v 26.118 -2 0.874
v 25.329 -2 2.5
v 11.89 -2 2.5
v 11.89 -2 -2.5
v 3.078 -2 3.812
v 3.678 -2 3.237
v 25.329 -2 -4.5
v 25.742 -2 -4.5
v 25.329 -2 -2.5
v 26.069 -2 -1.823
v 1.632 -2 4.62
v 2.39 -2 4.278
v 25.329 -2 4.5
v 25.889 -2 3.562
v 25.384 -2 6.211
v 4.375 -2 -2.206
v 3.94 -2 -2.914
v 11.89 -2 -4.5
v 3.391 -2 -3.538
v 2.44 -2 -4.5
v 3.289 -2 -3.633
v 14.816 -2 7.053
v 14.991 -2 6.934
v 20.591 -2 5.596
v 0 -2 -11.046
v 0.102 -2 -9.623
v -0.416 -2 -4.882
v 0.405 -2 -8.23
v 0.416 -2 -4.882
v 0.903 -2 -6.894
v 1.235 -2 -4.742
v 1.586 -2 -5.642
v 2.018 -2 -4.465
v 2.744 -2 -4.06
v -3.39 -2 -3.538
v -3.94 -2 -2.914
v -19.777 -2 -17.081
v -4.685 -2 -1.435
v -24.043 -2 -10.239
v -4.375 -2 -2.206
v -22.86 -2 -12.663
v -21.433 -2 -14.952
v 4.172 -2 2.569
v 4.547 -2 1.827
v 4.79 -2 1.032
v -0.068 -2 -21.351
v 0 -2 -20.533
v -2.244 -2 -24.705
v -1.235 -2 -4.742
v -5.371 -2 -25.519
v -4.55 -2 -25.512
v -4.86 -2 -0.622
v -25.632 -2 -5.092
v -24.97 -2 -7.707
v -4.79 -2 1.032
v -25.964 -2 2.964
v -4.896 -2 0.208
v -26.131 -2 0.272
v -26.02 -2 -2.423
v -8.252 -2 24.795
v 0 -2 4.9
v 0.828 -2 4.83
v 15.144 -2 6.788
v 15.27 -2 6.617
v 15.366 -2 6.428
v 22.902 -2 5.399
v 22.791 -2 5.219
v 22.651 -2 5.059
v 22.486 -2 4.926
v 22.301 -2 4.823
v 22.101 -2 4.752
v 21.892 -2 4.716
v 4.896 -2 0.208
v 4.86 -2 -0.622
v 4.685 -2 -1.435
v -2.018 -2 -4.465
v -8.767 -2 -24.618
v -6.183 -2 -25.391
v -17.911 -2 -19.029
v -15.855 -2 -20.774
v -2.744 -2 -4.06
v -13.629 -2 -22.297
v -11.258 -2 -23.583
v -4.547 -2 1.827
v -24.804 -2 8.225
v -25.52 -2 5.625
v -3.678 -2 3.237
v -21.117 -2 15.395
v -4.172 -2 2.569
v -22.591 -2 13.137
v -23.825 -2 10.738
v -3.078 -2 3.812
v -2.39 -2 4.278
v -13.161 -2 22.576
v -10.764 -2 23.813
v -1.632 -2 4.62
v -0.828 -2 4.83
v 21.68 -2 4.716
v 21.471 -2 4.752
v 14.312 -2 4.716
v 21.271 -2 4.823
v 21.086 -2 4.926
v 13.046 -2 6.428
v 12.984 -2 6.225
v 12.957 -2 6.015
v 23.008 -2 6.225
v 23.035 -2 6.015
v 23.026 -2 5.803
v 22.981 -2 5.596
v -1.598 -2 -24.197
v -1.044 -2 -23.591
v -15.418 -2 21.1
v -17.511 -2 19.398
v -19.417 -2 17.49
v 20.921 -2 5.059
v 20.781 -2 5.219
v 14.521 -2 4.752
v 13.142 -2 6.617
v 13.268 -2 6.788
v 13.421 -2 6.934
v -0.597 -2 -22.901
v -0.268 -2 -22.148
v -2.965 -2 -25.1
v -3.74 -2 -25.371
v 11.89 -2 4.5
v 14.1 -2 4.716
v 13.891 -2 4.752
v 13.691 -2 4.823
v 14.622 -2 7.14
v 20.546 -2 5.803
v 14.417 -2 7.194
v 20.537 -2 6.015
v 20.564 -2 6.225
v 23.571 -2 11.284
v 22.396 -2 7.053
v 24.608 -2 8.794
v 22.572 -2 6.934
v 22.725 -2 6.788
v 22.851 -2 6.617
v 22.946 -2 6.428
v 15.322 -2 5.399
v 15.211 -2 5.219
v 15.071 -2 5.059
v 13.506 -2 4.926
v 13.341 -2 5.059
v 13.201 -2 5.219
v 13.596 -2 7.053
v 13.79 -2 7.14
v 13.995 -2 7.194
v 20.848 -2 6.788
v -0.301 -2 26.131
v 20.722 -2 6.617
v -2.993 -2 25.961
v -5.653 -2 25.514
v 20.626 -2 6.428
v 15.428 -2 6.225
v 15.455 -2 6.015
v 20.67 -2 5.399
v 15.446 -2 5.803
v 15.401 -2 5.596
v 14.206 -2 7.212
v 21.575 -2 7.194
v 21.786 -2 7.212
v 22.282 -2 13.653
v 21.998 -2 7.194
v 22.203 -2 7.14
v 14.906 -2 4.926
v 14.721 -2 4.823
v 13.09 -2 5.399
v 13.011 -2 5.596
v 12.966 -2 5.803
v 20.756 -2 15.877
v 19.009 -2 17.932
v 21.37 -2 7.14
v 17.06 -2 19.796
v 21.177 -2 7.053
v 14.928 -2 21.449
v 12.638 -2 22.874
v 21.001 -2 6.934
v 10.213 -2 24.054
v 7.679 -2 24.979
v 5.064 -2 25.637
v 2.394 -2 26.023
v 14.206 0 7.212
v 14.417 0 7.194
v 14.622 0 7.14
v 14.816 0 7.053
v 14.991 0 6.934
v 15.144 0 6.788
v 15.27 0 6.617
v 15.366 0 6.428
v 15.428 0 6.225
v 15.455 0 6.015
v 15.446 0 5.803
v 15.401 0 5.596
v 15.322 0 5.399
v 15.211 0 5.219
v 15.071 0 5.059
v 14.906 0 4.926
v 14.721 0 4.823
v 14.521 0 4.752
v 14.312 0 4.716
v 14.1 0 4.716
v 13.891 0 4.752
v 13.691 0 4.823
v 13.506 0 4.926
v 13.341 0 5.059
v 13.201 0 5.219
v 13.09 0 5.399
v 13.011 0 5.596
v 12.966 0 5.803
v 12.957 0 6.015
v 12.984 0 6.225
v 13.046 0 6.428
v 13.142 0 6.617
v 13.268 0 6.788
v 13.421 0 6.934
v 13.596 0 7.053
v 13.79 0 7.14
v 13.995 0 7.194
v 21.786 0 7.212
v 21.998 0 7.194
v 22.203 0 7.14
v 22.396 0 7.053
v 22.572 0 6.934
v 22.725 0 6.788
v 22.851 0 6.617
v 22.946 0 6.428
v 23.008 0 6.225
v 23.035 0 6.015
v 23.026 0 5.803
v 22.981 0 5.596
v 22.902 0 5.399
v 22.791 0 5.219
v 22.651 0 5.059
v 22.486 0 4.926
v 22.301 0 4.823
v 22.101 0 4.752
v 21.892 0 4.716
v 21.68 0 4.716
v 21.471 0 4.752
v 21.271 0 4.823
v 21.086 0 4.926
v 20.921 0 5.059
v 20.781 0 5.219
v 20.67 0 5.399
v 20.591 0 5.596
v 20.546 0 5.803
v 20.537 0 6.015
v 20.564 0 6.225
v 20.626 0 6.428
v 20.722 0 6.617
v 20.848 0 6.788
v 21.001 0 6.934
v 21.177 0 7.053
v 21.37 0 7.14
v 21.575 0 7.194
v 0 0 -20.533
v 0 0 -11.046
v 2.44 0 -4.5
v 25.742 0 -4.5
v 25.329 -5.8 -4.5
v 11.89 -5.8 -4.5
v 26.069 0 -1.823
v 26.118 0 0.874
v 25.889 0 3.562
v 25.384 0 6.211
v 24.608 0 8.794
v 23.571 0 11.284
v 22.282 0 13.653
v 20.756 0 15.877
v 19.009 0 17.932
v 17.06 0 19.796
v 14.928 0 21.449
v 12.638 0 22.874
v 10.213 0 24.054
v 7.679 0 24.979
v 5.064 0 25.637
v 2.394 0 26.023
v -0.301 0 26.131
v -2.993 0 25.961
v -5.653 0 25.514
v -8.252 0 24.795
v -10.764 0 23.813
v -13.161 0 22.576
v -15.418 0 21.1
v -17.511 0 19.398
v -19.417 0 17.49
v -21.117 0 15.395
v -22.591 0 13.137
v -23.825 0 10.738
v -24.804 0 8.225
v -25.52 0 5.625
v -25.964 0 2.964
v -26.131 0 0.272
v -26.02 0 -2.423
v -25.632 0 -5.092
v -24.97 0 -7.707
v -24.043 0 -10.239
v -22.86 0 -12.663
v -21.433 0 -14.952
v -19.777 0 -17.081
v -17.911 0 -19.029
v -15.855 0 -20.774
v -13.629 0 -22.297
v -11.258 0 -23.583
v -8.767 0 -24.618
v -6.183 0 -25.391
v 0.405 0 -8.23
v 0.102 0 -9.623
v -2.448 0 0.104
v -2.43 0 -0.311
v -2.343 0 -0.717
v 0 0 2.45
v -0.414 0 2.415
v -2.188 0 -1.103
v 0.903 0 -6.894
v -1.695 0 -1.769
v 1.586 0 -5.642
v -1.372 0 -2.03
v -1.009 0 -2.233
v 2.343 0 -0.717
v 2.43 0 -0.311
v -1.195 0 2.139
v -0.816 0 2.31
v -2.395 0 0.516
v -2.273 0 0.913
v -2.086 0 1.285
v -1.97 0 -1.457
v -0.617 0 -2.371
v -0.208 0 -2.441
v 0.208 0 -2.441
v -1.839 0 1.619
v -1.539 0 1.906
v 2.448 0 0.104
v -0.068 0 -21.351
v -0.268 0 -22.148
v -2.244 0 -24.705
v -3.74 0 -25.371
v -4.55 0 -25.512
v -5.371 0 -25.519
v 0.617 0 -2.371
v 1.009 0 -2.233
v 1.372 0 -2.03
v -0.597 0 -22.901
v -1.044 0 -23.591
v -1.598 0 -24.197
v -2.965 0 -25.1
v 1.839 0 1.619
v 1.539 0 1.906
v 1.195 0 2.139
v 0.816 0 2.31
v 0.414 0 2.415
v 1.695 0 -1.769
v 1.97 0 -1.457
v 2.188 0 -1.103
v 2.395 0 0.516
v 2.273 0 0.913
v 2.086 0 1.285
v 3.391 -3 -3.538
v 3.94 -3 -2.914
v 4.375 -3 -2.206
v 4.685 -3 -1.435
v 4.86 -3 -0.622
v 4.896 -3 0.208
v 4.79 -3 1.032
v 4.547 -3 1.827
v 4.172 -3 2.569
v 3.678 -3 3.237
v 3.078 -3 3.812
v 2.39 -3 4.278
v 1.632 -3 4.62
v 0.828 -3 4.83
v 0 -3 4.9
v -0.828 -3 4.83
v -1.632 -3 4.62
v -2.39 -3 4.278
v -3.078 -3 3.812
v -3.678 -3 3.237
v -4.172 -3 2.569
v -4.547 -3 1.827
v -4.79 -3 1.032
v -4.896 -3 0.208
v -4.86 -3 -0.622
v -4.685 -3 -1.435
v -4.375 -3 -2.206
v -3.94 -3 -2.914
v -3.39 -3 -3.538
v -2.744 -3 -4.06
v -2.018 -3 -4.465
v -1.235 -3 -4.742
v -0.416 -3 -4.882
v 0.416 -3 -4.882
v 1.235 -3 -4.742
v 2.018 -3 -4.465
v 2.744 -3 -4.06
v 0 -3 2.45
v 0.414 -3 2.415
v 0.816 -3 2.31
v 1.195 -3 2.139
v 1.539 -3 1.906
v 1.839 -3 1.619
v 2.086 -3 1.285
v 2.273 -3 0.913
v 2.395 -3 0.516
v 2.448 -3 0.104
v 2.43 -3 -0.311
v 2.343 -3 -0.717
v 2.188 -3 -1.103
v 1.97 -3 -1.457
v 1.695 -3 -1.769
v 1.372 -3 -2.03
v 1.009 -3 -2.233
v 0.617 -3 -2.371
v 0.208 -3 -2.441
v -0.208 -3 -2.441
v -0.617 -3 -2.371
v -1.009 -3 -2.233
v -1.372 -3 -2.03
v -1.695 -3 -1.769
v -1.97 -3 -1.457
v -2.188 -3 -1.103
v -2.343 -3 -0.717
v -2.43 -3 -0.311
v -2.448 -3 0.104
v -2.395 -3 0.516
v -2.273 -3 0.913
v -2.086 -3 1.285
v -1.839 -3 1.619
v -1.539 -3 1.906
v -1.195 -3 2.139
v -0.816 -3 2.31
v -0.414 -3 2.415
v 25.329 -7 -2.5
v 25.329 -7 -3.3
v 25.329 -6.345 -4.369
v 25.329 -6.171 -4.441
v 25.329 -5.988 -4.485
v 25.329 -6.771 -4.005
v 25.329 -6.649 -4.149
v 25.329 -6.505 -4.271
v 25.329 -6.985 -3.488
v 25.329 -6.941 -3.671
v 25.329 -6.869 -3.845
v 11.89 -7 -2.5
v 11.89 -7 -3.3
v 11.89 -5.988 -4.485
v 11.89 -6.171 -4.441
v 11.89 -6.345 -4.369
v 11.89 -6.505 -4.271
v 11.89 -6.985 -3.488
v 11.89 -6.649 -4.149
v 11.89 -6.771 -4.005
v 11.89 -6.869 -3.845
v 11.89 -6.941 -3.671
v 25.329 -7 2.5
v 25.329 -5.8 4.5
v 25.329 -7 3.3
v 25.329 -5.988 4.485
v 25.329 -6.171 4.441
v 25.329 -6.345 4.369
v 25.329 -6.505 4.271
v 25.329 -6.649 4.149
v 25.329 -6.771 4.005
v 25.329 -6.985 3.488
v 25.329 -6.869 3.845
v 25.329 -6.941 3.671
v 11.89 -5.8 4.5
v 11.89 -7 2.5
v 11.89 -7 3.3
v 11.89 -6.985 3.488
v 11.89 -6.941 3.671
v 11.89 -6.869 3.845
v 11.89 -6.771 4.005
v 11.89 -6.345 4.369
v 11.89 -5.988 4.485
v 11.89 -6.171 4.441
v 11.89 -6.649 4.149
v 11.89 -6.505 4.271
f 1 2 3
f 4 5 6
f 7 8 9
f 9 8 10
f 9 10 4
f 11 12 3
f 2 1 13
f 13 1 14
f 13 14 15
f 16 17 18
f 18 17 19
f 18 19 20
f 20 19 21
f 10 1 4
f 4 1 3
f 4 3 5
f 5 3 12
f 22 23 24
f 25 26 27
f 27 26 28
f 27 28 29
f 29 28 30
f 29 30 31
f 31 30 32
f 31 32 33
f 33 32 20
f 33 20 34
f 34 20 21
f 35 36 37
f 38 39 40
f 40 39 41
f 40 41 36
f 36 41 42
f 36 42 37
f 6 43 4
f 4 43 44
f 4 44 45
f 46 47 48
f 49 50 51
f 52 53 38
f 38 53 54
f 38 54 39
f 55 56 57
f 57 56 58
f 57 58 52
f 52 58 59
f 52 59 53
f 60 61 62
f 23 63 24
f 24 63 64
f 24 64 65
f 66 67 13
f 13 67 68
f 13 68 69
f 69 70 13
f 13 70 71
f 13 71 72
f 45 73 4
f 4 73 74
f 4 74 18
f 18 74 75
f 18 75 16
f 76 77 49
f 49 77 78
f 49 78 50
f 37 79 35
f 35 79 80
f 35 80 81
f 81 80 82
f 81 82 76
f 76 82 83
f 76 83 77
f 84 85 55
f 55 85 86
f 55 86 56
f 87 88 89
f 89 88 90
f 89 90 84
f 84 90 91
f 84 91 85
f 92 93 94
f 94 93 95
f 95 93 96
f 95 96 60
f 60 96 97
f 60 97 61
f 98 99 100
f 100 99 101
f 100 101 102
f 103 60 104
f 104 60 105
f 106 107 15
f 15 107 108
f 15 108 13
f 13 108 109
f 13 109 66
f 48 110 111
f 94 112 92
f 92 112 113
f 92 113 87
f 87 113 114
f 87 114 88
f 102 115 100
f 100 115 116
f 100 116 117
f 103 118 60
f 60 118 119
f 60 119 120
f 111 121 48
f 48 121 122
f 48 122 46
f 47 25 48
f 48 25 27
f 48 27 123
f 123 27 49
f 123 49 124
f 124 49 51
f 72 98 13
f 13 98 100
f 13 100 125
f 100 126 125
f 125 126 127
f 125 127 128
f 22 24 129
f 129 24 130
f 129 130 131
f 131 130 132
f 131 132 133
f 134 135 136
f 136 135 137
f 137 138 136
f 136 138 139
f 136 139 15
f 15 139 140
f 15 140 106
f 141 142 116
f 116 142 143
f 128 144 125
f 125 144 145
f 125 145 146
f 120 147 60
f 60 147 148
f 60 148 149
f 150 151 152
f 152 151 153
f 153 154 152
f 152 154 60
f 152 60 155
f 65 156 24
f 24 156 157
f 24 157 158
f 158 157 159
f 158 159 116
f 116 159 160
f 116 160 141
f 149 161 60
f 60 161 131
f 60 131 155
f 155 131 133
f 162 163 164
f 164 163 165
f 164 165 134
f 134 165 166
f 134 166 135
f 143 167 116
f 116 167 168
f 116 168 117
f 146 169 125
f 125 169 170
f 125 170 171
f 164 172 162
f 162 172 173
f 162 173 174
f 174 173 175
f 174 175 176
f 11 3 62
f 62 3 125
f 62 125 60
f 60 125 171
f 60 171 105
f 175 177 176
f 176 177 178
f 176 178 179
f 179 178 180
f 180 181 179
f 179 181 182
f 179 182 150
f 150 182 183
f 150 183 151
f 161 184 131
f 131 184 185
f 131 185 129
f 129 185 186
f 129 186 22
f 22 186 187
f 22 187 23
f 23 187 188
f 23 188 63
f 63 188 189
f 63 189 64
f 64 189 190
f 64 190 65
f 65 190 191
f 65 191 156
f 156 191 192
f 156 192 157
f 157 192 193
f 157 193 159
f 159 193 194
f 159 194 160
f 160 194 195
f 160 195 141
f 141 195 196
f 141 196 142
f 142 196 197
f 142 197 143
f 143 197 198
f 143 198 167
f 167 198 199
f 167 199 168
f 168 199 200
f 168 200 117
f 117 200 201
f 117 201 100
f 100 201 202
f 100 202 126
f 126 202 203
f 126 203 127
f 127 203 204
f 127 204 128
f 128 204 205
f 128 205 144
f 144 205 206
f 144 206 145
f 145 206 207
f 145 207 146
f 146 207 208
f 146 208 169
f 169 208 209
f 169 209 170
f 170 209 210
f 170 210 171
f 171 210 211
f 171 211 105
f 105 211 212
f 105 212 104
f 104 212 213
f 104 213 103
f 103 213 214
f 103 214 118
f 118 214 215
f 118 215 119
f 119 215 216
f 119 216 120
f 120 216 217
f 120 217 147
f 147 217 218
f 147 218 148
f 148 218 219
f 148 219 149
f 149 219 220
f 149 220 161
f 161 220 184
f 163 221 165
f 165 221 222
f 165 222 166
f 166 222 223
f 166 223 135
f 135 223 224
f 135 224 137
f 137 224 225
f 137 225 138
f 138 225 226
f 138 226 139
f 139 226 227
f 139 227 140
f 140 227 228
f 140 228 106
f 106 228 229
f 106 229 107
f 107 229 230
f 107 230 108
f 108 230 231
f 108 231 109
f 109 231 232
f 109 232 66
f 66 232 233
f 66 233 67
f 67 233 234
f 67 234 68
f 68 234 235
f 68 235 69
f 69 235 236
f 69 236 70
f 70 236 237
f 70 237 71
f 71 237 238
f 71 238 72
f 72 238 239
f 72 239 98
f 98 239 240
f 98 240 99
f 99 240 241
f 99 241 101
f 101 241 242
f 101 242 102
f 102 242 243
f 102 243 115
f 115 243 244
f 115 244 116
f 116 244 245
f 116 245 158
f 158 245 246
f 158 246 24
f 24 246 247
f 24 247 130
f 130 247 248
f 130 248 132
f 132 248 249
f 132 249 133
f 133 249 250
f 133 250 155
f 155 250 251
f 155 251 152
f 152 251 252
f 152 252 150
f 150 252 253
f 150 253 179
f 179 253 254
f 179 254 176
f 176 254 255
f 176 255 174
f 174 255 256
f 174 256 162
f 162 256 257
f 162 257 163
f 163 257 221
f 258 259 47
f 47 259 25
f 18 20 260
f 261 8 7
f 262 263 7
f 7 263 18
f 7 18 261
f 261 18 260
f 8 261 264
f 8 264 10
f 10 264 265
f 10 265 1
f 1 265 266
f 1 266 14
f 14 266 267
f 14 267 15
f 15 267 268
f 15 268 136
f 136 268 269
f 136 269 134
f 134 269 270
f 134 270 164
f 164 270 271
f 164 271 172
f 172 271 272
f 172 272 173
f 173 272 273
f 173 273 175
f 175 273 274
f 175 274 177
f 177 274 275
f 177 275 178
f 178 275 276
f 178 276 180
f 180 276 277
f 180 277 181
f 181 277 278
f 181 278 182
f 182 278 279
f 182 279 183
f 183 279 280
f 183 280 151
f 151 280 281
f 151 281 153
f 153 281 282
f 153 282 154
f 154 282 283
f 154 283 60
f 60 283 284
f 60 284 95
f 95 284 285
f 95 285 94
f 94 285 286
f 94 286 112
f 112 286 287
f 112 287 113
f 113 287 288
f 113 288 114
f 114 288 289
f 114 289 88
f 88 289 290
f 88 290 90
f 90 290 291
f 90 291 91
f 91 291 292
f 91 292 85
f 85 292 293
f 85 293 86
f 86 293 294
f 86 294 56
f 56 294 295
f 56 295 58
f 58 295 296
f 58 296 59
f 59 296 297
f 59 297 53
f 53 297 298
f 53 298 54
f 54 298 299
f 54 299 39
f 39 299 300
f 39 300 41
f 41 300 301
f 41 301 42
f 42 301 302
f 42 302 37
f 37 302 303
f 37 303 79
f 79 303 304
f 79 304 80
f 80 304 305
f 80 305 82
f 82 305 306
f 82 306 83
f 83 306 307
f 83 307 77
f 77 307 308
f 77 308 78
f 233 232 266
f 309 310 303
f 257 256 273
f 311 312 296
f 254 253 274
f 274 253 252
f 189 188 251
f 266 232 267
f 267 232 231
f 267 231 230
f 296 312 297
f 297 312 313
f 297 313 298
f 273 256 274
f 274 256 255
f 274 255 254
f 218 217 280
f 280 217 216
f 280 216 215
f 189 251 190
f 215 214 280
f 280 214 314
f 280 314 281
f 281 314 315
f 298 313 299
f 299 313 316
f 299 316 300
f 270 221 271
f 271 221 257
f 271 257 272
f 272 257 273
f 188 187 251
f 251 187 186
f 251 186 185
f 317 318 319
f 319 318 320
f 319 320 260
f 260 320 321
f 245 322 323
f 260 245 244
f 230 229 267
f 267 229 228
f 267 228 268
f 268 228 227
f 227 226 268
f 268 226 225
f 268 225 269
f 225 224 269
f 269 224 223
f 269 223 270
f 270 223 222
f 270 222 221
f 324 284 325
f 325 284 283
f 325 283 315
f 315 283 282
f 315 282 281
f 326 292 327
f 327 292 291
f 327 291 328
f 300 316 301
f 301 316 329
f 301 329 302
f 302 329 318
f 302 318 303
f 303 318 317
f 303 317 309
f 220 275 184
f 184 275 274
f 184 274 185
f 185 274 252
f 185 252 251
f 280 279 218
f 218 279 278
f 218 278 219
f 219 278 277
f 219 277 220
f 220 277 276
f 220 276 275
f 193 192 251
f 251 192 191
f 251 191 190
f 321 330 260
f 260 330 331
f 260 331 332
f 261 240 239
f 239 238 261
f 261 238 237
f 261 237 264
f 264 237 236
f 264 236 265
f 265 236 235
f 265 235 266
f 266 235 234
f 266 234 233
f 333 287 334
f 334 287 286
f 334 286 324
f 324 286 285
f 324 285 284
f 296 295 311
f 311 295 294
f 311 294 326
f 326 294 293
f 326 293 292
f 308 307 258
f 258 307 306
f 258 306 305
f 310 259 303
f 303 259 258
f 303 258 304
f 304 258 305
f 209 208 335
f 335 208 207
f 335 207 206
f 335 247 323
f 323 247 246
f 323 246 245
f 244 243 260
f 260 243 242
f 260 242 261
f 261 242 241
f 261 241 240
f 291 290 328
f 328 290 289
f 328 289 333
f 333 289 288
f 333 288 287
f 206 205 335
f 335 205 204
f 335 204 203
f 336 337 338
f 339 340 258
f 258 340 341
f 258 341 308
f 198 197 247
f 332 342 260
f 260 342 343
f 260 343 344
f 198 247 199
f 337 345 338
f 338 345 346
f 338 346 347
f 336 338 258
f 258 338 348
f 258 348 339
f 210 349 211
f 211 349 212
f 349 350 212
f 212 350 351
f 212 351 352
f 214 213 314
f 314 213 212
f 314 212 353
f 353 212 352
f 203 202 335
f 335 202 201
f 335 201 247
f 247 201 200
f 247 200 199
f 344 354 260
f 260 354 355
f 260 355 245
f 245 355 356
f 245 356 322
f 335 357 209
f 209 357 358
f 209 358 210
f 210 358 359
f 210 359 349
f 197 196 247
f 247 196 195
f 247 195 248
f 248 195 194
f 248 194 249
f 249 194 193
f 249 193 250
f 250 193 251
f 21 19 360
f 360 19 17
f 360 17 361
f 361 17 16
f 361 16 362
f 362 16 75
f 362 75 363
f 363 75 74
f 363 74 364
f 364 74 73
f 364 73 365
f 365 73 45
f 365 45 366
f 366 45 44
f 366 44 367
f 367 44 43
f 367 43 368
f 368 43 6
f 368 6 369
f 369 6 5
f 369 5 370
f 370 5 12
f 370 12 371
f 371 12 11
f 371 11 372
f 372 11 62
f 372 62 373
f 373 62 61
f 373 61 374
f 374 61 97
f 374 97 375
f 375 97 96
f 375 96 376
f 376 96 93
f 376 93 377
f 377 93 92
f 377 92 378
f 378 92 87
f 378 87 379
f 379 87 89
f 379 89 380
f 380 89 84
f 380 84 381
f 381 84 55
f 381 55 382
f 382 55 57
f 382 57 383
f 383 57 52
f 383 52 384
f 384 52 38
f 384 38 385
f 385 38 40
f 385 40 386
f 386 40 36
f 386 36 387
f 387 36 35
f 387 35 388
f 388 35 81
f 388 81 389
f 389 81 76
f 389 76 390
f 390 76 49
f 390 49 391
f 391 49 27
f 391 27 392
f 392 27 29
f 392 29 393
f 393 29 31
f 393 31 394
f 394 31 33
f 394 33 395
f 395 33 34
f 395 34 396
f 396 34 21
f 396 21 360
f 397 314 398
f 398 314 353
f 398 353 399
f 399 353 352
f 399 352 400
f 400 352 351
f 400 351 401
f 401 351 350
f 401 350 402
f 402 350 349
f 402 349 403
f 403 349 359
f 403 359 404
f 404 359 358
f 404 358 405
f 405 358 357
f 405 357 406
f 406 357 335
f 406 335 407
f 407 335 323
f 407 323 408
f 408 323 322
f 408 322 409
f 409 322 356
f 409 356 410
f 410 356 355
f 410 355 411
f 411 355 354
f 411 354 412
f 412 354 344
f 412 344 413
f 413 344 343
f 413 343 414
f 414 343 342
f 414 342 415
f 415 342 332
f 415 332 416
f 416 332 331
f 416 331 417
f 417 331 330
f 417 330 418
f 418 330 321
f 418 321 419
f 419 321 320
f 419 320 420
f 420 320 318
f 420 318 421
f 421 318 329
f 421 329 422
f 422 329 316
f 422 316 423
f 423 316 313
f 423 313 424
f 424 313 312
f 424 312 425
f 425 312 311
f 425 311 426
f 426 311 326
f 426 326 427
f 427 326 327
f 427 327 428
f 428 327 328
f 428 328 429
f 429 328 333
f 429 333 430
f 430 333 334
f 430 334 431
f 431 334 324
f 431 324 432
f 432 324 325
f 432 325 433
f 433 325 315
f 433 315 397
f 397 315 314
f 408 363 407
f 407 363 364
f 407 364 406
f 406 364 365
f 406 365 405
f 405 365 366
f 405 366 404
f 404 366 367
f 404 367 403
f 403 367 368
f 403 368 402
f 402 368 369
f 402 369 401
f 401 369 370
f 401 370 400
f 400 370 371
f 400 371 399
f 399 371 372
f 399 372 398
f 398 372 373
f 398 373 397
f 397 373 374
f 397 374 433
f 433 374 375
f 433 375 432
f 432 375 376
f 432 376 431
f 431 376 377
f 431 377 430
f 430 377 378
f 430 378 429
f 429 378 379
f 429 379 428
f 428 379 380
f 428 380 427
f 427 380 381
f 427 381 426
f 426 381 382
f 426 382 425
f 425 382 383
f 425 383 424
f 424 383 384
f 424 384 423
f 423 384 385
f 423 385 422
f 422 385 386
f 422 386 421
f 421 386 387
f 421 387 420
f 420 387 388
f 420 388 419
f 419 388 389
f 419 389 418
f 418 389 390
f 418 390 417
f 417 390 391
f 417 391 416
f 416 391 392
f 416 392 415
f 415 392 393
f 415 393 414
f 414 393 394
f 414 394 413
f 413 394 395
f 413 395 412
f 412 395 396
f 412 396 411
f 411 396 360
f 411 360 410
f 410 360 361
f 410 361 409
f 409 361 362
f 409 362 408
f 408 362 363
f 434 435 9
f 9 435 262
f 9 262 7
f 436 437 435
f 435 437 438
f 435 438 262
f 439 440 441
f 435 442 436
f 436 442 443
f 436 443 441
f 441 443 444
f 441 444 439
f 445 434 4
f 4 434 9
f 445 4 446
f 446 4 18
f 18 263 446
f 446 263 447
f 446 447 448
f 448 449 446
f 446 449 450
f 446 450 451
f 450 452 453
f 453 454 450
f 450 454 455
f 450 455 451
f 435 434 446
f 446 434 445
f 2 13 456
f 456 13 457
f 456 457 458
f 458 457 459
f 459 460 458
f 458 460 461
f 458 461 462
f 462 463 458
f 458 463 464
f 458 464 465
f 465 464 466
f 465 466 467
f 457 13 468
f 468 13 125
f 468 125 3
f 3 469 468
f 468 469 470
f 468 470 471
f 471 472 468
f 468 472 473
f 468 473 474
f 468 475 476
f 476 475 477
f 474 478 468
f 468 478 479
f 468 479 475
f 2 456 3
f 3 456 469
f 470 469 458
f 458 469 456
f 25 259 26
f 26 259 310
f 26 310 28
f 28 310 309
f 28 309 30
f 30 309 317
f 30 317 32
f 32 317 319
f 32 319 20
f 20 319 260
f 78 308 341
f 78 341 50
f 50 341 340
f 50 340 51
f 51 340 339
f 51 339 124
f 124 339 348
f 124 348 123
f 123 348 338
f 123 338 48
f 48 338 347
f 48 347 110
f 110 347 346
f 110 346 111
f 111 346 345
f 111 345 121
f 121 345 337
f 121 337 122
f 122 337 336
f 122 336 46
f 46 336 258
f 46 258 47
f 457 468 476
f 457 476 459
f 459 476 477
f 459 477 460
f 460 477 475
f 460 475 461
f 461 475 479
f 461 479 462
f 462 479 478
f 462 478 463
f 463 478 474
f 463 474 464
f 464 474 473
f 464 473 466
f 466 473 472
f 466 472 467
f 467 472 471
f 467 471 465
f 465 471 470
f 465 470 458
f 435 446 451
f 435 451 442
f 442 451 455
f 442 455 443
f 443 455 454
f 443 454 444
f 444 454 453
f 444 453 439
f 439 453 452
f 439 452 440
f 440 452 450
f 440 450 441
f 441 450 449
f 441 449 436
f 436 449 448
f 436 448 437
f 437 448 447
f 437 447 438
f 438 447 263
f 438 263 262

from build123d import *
from build123d.topology import SkipClean

# Parameters (mm, degrees)
SKETCH1_R                 = 1.25
SKETCH1_R_2               = 2.45
BOSS_EXTRUDE1_DEPTH       = 2
BOSS_EXTRUDE2_START       = -3
BOSS_EXTRUDE2_OUTLINE_R   = 4.9
BOSS_EXTRUDE2_OUTLINE_R_2 = 2.45
BOSS_EXTRUDE2_DEPTH       = 1
SKETCH1_5_W               = 13.43962311
SKETCH1_5_H               = 2
BOSS_EXTRUDE3_DEPTH       = 7
FILLET1_R                 = 10
FILLET2_R                 = 5
FILLET3_R                 = 1.2
FILLET4_R                 = 1.2


# Read off the part's stored shape, not the designer's step: Boss-Extrude2
with BuildPart() as part:
    # Sketch1 → Boss-Extrude1 (new body)
    with BuildSketch(Plane(origin=(0, 0, 0), x_dir=(1, 0, 0), z_dir=(0, 1, 0))):
        with BuildLine():
            ThreePointArc((1.939071943, 4.5), (0.989949494, 4.79895822), (0, 4.9))
            Line((0, 4.9), (0, 26.132651094))
            ThreePointArc((0, 26.132651094), (-16.812473395, -20.006403764), (25.742289199, 4.5))
            Line((25.742289199, 4.5), (1.939071943, 4.5))
        make_face()
        with Locations(Location((14.206057781, -5.961892897, 0), (0, 0, 270))):
            Circle(SKETCH1_R, mode=Mode.SUBTRACT)
        with Locations(Location((21.786269316, -5.961892897, 0), (0, 0, 270))):
            Circle(SKETCH1_R, mode=Mode.SUBTRACT)
        with Locations(Location((0, 0, 0), (0, 0, 270))):
            Circle(SKETCH1_R_2, mode=Mode.SUBTRACT)
    extrude(amount=-BOSS_EXTRUDE1_DEPTH)

    # Boss-Extrude2 outline → Boss-Extrude2 (add)
    with SkipClean():  # the faces are left unmerged after this step: merging them gives an invalid solid
        with BuildSketch(Plane(origin=(0, 0, 0), x_dir=(1, 0, 0), z_dir=(0, 1, 0)).offset(BOSS_EXTRUDE2_START)):
            Circle(BOSS_EXTRUDE2_OUTLINE_R)
            Circle(BOSS_EXTRUDE2_OUTLINE_R_2, mode=Mode.SUBTRACT)
        extrude(amount=BOSS_EXTRUDE2_DEPTH)
    add(part.part.scale(1), mode=Mode.REPLACE)  # the faces are merged on a copy

    # Sketch1<5> → Boss-Extrude3 (add)
    with BuildSketch(Plane(origin=(0, 0, 0), x_dir=(1, 0, 0), z_dir=(0, 1, 0))):
        with Locations((18.609497145, 3.5)):
            Rectangle(SKETCH1_5_W, SKETCH1_5_H)
        with Locations((18.609497145, -3.5)):
            Rectangle(SKETCH1_5_W, SKETCH1_5_H)
    extrude(amount=-BOSS_EXTRUDE3_DEPTH)

    # Fillet1
    # the kernel refuses this fillet: 10 mm, written as the material it adds along each edge
    with BuildSketch(Plane(origin=(0, 0, -4.9), x_dir=(0, 0, -1), z_dir=(0, -1, 0))) as fillet1_piece_1:
        with BuildLine():
            CenterArc((6.145813687, 10), FILLET1_R, 222.155184251, 47.844815749)
            ThreePointArc((-1.26748409, 3.288590604), (-0.32783815, 1.762196362), (0, 0))
            Line((0, 0), (6.145813687, 0))
        make_face()
    extrude(amount=2)

    # Fillet2
    fillet2_edges = [part.edges().sort_by_distance(p)[0] for p in [
        (0, -1, -26.132651094),
    ]]
    fillet(fillet2_edges, radius=FILLET2_R)

    # Fillet3
    fillet3_edges = [part.edges().sort_by_distance(p)[0] for p in [
        (18.609497145, -7, 4.5),
    ]]
    fillet(fillet3_edges, radius=FILLET3_R)

    # Fillet4
    fillet4_edges = [part.edges().sort_by_distance(p)[0] for p in [
        (18.609497145, -7, -4.5),
    ]]
    fillet(fillet4_edges, radius=FILLET4_R)


solid = part.part
